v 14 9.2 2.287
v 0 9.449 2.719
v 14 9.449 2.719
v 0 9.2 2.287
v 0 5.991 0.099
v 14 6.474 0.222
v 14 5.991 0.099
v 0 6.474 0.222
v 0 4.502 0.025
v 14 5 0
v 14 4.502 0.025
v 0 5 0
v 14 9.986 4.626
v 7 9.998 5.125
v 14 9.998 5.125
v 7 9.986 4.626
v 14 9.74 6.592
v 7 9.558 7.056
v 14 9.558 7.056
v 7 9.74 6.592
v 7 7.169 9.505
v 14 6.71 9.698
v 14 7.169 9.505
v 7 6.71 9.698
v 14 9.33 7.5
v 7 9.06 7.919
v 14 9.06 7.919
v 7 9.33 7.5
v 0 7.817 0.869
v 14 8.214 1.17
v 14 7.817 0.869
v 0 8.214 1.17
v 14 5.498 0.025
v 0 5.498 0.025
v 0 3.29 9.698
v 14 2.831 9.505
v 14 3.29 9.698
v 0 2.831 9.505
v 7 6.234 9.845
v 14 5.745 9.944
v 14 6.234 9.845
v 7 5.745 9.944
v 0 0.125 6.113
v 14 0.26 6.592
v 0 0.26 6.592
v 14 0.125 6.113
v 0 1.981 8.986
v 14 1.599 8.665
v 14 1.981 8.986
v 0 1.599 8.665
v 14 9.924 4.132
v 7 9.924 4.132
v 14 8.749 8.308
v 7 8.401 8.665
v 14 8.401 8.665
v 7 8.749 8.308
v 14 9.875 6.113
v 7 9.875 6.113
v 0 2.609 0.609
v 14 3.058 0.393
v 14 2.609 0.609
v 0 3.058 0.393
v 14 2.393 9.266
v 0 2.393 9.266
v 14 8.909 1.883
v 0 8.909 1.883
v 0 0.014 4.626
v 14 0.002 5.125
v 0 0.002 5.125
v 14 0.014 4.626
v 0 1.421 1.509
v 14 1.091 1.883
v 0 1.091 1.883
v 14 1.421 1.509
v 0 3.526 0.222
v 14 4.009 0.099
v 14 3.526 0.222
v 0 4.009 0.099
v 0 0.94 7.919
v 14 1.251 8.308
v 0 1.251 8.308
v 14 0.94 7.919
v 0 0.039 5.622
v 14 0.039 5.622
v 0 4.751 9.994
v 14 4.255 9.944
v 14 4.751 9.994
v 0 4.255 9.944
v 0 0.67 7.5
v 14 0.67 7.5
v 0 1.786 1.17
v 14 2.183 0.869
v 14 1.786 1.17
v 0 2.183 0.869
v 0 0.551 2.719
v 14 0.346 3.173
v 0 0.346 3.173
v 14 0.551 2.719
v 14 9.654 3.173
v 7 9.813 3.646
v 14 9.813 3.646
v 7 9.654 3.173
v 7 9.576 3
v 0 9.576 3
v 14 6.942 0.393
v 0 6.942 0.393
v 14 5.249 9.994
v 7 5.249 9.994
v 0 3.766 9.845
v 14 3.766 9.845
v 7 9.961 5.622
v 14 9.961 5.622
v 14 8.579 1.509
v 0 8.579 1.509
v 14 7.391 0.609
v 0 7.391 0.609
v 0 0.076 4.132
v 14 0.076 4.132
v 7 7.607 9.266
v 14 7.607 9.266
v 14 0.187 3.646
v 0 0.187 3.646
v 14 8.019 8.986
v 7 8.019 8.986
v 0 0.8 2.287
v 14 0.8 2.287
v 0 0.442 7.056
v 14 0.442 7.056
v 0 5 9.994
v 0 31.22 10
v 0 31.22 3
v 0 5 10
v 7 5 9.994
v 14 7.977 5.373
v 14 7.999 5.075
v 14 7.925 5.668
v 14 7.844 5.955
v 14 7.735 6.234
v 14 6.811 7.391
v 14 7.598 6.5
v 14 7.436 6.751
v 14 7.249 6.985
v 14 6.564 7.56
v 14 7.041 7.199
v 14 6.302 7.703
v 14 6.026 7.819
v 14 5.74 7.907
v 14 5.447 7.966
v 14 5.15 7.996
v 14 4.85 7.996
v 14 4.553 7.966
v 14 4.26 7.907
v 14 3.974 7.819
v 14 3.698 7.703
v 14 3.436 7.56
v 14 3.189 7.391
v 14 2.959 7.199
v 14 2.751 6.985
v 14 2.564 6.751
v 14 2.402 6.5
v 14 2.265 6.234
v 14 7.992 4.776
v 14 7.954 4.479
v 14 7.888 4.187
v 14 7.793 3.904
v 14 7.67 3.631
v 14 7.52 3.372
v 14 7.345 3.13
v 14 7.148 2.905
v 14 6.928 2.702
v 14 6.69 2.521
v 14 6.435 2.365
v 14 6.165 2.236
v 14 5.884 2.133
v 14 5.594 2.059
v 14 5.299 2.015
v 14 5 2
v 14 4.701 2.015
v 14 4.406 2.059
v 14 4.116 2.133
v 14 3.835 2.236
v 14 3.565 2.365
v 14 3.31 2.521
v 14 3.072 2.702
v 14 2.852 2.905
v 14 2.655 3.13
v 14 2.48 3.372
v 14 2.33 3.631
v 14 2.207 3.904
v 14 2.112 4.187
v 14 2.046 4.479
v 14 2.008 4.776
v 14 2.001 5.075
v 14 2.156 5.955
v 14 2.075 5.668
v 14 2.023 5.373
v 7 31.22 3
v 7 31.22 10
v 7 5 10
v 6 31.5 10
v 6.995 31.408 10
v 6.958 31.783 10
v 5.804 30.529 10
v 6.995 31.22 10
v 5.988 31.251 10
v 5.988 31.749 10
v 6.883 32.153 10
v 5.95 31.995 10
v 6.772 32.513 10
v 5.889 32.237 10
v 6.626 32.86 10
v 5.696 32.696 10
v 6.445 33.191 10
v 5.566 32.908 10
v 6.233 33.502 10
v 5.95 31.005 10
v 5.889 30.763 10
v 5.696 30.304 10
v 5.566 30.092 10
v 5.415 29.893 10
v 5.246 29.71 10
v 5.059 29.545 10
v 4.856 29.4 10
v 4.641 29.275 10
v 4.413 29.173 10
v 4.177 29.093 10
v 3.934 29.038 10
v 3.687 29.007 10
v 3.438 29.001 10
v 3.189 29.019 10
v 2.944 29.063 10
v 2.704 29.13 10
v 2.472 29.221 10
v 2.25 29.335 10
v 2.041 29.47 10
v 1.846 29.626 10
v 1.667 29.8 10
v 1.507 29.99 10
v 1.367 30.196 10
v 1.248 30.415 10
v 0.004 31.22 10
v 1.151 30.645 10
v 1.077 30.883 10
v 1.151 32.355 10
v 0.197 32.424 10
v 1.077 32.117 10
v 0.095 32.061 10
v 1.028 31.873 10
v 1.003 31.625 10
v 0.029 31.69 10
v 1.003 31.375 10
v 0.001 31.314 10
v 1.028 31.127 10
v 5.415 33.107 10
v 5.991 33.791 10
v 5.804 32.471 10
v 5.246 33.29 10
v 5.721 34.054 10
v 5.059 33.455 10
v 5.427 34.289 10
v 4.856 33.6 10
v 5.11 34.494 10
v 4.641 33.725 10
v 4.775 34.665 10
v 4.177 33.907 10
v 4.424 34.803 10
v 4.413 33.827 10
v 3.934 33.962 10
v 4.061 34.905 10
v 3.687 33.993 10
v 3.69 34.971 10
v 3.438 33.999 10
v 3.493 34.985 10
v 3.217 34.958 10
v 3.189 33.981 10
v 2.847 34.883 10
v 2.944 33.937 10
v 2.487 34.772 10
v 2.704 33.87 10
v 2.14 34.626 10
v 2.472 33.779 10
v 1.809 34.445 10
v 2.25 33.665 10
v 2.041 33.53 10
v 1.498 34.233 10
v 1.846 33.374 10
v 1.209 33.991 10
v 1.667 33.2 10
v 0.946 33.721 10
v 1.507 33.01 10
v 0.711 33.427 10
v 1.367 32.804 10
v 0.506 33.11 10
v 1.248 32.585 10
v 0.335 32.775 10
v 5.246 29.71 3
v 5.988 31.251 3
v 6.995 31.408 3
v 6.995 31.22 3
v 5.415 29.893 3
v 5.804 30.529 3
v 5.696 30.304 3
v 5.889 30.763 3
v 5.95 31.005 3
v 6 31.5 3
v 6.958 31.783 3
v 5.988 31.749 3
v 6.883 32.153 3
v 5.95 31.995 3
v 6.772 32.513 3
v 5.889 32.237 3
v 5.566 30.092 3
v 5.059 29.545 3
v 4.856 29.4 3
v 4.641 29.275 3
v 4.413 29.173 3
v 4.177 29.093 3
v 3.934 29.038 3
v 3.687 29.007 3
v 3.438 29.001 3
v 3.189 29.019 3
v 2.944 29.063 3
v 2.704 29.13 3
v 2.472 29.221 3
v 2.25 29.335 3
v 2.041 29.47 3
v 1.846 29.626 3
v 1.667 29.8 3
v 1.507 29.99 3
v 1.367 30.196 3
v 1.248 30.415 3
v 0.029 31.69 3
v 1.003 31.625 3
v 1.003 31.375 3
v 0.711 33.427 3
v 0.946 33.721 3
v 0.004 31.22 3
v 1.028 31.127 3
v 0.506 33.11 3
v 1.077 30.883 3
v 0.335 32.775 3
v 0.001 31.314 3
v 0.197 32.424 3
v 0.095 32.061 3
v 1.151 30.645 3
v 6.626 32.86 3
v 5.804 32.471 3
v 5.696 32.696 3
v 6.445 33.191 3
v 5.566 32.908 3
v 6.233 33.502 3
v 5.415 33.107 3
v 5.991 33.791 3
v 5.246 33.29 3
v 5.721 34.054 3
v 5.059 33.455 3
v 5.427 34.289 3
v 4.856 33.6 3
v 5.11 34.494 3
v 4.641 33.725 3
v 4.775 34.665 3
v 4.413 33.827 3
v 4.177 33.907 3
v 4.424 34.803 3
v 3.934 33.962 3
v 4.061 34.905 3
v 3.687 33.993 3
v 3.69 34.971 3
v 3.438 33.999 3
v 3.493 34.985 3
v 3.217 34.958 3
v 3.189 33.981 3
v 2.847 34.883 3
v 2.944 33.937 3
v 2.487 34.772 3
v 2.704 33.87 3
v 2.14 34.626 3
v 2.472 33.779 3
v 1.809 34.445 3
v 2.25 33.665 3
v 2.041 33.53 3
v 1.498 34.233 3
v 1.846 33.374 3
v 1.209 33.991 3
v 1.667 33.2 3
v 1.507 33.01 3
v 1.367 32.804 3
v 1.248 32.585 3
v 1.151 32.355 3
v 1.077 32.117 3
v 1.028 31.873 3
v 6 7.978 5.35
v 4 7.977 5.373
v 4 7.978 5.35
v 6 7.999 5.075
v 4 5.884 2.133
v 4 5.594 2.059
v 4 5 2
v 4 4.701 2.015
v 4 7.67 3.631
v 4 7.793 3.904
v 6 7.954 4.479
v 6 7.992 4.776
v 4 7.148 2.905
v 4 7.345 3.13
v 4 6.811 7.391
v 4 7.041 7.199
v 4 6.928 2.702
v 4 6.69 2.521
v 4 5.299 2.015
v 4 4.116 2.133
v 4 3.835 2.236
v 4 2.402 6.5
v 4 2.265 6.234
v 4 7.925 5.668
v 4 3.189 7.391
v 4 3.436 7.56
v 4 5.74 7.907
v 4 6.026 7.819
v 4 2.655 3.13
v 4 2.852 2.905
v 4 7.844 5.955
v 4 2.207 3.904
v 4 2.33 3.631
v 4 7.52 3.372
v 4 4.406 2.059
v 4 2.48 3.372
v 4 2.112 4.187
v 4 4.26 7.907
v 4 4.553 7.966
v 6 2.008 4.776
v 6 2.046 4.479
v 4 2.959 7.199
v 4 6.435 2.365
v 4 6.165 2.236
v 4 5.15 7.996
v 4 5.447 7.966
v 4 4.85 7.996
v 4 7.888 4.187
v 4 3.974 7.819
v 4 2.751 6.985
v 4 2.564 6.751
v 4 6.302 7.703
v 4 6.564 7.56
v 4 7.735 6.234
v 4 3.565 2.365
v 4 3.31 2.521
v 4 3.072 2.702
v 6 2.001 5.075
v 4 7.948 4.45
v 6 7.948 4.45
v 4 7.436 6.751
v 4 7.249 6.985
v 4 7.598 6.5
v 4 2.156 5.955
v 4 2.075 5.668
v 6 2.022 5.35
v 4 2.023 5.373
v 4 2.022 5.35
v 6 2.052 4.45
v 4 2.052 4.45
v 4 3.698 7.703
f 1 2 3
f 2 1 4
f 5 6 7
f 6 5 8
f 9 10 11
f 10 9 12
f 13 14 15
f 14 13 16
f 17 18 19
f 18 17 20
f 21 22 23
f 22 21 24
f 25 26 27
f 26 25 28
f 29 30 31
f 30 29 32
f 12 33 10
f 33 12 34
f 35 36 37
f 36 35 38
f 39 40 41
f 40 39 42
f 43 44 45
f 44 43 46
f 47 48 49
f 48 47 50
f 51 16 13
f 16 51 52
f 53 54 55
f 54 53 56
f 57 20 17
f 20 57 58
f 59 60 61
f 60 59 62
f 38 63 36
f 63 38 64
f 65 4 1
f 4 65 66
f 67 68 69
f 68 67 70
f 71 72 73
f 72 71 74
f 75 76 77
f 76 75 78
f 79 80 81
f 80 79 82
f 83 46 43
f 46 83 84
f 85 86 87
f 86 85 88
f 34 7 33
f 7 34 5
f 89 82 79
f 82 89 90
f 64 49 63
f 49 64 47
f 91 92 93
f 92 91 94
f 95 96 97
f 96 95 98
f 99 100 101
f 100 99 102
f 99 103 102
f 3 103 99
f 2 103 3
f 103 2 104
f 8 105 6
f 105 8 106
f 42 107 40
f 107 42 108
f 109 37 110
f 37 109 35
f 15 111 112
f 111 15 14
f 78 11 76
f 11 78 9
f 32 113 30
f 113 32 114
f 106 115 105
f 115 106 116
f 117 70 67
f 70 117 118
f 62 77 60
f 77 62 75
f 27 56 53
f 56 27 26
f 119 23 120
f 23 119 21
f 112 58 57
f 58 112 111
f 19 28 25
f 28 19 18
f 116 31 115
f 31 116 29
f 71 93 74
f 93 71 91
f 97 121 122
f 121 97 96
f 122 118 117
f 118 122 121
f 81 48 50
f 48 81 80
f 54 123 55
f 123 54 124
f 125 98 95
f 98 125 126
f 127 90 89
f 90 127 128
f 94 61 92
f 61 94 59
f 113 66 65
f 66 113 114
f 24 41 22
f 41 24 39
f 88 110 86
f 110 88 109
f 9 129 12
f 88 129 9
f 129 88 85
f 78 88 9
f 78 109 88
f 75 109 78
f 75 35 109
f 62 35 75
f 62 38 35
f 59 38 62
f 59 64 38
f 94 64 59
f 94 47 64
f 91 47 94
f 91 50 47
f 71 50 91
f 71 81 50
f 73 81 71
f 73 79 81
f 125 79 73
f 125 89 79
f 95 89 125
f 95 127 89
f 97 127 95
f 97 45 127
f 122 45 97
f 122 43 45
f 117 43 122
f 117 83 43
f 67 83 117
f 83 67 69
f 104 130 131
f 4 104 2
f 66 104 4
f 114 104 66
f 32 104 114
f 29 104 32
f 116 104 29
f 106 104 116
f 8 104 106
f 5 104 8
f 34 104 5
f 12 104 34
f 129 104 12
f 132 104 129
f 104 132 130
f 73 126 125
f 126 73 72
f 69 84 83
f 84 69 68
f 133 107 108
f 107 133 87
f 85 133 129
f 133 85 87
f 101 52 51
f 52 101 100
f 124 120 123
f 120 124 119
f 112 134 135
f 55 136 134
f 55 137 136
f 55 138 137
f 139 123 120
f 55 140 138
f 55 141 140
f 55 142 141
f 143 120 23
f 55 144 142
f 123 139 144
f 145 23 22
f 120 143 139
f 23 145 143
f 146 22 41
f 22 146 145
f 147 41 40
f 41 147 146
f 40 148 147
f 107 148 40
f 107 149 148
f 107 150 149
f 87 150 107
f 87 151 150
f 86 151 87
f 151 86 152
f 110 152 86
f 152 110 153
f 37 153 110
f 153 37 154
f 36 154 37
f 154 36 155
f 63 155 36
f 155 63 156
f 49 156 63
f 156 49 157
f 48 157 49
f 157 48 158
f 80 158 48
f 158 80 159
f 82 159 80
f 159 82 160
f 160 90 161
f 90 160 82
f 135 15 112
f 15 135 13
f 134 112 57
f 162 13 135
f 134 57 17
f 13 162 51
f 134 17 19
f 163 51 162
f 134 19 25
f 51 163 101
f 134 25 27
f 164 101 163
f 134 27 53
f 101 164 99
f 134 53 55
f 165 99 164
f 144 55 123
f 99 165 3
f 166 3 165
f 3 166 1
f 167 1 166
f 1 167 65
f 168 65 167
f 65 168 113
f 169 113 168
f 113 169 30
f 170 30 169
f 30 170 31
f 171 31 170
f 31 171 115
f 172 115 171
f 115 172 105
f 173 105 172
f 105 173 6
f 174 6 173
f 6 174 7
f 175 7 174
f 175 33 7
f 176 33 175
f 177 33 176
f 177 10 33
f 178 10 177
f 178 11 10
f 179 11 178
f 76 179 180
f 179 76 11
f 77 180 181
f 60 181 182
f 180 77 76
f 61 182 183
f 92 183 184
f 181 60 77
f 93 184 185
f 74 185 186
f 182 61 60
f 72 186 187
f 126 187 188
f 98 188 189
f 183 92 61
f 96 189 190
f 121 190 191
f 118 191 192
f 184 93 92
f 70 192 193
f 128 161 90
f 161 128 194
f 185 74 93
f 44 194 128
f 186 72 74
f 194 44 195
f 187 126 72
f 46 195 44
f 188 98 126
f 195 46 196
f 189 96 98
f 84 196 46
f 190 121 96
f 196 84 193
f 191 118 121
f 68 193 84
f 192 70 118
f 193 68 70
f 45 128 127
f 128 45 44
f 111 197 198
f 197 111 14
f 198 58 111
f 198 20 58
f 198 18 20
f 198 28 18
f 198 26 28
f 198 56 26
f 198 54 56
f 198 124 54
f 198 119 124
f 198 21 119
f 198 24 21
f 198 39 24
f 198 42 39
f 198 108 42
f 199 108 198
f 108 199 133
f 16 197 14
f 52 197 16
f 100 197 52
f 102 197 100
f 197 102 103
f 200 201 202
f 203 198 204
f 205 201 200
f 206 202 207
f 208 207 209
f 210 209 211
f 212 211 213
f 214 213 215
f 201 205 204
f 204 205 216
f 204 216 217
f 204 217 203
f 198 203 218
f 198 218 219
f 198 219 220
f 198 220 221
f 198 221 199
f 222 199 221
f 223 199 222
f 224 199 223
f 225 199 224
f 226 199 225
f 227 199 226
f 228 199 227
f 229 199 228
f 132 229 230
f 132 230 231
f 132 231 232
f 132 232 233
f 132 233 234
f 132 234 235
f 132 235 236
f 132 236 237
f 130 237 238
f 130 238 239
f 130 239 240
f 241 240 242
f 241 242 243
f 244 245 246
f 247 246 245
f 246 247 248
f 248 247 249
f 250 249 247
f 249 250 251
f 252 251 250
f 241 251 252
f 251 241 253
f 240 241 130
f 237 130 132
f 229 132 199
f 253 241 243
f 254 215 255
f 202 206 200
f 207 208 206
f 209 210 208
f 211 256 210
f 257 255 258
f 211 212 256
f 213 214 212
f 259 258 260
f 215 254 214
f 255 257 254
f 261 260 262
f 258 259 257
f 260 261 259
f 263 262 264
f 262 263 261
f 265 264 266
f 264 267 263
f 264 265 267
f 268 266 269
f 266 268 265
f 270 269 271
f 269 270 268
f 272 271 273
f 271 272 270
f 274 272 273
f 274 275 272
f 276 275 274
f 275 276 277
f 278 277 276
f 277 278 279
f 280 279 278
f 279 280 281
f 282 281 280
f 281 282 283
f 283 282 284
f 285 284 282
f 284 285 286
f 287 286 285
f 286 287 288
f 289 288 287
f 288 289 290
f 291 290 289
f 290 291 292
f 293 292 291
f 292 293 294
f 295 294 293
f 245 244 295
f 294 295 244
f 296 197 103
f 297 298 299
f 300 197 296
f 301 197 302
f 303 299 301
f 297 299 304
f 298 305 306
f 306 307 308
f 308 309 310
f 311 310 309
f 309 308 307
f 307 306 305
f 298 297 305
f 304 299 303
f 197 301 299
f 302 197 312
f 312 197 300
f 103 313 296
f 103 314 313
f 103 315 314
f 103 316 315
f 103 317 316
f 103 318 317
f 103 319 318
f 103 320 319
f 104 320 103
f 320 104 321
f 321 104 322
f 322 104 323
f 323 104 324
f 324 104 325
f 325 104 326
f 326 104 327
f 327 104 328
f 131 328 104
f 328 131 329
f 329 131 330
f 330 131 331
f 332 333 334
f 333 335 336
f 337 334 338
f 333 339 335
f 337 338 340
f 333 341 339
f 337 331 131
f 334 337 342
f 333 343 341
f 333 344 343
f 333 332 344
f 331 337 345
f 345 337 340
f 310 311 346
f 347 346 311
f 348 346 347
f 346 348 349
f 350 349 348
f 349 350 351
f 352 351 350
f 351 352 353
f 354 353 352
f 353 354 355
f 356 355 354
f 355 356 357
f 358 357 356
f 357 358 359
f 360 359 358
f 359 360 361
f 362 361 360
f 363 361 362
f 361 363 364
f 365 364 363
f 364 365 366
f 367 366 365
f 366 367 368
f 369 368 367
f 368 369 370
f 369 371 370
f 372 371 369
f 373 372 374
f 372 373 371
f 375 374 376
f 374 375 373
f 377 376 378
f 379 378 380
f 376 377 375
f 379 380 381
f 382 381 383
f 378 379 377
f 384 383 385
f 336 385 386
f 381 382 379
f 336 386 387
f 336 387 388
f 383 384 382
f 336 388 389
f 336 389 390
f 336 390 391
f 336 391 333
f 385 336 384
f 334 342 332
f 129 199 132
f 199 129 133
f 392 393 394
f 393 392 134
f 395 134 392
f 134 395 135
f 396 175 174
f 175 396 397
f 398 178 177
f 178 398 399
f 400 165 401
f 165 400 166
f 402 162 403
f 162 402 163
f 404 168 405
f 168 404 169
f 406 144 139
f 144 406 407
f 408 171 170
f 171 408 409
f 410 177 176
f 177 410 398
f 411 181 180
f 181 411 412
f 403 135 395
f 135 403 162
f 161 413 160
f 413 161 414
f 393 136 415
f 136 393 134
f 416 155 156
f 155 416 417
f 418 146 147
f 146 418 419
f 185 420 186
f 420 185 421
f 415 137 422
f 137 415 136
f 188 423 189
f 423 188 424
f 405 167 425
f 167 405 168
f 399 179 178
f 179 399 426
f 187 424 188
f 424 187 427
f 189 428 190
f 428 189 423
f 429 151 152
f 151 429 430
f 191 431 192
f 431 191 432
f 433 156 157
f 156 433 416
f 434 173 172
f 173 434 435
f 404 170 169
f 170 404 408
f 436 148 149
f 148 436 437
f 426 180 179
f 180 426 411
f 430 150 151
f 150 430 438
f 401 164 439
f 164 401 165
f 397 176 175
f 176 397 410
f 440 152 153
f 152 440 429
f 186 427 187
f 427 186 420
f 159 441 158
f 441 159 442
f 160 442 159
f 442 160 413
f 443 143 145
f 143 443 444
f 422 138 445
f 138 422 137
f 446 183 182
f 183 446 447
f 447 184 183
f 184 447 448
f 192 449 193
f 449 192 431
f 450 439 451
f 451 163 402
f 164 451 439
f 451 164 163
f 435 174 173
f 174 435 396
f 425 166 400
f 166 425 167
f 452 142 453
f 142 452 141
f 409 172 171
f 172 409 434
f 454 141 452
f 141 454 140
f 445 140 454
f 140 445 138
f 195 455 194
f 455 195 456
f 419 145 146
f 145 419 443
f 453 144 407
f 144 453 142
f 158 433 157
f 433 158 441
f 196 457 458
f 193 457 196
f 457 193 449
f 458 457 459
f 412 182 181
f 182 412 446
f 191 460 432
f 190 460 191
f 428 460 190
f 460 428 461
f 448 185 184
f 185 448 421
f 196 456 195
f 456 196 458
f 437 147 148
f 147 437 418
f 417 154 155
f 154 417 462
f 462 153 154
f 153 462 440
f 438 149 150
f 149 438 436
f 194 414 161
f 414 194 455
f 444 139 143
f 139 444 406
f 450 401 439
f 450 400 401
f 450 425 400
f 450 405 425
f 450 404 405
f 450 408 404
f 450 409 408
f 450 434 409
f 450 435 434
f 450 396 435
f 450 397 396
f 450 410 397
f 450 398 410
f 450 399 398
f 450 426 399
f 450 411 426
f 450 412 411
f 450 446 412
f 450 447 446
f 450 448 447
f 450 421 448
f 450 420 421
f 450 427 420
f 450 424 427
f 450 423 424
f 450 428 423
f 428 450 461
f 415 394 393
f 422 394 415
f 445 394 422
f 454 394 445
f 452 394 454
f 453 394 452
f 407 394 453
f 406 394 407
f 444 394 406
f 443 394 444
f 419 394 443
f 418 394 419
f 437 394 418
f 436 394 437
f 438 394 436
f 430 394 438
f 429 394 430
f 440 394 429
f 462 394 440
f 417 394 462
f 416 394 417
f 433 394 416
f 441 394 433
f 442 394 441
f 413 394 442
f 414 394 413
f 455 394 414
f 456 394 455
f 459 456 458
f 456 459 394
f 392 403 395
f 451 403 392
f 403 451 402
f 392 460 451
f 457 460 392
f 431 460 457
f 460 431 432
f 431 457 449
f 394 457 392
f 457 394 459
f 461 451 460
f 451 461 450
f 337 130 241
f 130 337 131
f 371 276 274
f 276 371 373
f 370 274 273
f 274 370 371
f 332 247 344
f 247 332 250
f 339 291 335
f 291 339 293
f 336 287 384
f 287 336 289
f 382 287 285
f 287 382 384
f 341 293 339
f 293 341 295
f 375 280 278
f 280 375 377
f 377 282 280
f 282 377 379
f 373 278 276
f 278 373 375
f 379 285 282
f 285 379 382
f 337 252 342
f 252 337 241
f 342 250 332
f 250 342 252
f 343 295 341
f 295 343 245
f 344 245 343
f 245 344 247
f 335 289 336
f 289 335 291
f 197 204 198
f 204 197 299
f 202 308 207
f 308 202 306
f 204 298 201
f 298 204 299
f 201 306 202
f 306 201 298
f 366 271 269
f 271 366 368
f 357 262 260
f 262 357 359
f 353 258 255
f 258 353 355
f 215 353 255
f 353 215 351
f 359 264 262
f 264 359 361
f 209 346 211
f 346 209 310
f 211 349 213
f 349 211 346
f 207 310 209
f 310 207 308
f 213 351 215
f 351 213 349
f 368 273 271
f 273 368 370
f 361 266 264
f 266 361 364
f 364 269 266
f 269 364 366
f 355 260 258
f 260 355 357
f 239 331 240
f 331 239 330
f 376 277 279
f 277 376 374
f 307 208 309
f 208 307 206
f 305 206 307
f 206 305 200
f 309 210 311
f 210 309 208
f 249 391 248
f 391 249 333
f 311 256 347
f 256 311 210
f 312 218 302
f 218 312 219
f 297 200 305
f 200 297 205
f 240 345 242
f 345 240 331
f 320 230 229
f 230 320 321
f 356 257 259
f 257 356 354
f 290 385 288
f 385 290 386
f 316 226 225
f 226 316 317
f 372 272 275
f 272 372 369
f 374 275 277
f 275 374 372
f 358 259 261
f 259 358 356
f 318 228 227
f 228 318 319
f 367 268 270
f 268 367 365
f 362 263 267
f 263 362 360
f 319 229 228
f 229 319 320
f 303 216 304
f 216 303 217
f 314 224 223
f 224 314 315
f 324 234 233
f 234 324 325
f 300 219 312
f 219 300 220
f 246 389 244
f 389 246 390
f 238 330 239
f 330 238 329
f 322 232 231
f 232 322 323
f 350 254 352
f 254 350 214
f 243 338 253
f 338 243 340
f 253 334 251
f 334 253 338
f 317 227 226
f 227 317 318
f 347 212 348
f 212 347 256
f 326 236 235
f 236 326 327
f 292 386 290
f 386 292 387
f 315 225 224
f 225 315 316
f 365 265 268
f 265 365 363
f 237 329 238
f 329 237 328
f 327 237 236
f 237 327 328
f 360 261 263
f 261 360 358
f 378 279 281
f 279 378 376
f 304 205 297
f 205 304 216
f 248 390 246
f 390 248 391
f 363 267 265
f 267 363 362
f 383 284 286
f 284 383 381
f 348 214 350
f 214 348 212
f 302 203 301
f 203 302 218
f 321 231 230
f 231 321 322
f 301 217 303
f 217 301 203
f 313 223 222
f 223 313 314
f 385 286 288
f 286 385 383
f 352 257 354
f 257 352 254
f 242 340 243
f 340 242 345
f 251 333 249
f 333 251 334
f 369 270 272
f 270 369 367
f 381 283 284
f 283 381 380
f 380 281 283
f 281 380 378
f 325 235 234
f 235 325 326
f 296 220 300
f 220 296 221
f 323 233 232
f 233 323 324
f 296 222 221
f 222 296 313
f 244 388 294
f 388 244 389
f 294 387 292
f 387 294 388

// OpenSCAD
// file: 0_corner_cutout.scad
// Model
//$fn = 255;
//size = 10;
//height = 10;
//corner_cut(size, height);

// Buck converter body
module corner_cut(length, height) {
    difference() {
        // Main body
        cube([length,length,height]);
        translate([length,length,0]) cylinder(d=length*2,h=height);
    }
}
// main file
include <0_corner_cutout.scad>

$fn = 63;

pot_arm();

module pot_arm() {
    arm_l = 30;
    difference() {
        union() {
            translate([0,5,5]) rotate(90,[0,1,0]) cylinder(h=14, d=10);
            translate([0,5,3]) cube([7,arm_l,7]);
        }
        translate([4,2,2]) pot_rod();
        translate([2.5+1,2.5+arm_l-1,3]) cylinder(h=7,d=5);
        // corner cutout
        translate([0,arm_l+5,3]) rotate(270, [0,0,1]) corner_cut(3.78, 7);
        translate([7,arm_l+5,3]) rotate(180, [0,0,1]) corner_cut(3.78, 7);
    }
}

module pot_rod() {
    difference() {
        translate([0,3,3]) rotate(90,[0,1,0]) cylinder(h=10, d=6);
        translate([0,0,2.45]) cube([2,6,1-0.1]);
    }
}
